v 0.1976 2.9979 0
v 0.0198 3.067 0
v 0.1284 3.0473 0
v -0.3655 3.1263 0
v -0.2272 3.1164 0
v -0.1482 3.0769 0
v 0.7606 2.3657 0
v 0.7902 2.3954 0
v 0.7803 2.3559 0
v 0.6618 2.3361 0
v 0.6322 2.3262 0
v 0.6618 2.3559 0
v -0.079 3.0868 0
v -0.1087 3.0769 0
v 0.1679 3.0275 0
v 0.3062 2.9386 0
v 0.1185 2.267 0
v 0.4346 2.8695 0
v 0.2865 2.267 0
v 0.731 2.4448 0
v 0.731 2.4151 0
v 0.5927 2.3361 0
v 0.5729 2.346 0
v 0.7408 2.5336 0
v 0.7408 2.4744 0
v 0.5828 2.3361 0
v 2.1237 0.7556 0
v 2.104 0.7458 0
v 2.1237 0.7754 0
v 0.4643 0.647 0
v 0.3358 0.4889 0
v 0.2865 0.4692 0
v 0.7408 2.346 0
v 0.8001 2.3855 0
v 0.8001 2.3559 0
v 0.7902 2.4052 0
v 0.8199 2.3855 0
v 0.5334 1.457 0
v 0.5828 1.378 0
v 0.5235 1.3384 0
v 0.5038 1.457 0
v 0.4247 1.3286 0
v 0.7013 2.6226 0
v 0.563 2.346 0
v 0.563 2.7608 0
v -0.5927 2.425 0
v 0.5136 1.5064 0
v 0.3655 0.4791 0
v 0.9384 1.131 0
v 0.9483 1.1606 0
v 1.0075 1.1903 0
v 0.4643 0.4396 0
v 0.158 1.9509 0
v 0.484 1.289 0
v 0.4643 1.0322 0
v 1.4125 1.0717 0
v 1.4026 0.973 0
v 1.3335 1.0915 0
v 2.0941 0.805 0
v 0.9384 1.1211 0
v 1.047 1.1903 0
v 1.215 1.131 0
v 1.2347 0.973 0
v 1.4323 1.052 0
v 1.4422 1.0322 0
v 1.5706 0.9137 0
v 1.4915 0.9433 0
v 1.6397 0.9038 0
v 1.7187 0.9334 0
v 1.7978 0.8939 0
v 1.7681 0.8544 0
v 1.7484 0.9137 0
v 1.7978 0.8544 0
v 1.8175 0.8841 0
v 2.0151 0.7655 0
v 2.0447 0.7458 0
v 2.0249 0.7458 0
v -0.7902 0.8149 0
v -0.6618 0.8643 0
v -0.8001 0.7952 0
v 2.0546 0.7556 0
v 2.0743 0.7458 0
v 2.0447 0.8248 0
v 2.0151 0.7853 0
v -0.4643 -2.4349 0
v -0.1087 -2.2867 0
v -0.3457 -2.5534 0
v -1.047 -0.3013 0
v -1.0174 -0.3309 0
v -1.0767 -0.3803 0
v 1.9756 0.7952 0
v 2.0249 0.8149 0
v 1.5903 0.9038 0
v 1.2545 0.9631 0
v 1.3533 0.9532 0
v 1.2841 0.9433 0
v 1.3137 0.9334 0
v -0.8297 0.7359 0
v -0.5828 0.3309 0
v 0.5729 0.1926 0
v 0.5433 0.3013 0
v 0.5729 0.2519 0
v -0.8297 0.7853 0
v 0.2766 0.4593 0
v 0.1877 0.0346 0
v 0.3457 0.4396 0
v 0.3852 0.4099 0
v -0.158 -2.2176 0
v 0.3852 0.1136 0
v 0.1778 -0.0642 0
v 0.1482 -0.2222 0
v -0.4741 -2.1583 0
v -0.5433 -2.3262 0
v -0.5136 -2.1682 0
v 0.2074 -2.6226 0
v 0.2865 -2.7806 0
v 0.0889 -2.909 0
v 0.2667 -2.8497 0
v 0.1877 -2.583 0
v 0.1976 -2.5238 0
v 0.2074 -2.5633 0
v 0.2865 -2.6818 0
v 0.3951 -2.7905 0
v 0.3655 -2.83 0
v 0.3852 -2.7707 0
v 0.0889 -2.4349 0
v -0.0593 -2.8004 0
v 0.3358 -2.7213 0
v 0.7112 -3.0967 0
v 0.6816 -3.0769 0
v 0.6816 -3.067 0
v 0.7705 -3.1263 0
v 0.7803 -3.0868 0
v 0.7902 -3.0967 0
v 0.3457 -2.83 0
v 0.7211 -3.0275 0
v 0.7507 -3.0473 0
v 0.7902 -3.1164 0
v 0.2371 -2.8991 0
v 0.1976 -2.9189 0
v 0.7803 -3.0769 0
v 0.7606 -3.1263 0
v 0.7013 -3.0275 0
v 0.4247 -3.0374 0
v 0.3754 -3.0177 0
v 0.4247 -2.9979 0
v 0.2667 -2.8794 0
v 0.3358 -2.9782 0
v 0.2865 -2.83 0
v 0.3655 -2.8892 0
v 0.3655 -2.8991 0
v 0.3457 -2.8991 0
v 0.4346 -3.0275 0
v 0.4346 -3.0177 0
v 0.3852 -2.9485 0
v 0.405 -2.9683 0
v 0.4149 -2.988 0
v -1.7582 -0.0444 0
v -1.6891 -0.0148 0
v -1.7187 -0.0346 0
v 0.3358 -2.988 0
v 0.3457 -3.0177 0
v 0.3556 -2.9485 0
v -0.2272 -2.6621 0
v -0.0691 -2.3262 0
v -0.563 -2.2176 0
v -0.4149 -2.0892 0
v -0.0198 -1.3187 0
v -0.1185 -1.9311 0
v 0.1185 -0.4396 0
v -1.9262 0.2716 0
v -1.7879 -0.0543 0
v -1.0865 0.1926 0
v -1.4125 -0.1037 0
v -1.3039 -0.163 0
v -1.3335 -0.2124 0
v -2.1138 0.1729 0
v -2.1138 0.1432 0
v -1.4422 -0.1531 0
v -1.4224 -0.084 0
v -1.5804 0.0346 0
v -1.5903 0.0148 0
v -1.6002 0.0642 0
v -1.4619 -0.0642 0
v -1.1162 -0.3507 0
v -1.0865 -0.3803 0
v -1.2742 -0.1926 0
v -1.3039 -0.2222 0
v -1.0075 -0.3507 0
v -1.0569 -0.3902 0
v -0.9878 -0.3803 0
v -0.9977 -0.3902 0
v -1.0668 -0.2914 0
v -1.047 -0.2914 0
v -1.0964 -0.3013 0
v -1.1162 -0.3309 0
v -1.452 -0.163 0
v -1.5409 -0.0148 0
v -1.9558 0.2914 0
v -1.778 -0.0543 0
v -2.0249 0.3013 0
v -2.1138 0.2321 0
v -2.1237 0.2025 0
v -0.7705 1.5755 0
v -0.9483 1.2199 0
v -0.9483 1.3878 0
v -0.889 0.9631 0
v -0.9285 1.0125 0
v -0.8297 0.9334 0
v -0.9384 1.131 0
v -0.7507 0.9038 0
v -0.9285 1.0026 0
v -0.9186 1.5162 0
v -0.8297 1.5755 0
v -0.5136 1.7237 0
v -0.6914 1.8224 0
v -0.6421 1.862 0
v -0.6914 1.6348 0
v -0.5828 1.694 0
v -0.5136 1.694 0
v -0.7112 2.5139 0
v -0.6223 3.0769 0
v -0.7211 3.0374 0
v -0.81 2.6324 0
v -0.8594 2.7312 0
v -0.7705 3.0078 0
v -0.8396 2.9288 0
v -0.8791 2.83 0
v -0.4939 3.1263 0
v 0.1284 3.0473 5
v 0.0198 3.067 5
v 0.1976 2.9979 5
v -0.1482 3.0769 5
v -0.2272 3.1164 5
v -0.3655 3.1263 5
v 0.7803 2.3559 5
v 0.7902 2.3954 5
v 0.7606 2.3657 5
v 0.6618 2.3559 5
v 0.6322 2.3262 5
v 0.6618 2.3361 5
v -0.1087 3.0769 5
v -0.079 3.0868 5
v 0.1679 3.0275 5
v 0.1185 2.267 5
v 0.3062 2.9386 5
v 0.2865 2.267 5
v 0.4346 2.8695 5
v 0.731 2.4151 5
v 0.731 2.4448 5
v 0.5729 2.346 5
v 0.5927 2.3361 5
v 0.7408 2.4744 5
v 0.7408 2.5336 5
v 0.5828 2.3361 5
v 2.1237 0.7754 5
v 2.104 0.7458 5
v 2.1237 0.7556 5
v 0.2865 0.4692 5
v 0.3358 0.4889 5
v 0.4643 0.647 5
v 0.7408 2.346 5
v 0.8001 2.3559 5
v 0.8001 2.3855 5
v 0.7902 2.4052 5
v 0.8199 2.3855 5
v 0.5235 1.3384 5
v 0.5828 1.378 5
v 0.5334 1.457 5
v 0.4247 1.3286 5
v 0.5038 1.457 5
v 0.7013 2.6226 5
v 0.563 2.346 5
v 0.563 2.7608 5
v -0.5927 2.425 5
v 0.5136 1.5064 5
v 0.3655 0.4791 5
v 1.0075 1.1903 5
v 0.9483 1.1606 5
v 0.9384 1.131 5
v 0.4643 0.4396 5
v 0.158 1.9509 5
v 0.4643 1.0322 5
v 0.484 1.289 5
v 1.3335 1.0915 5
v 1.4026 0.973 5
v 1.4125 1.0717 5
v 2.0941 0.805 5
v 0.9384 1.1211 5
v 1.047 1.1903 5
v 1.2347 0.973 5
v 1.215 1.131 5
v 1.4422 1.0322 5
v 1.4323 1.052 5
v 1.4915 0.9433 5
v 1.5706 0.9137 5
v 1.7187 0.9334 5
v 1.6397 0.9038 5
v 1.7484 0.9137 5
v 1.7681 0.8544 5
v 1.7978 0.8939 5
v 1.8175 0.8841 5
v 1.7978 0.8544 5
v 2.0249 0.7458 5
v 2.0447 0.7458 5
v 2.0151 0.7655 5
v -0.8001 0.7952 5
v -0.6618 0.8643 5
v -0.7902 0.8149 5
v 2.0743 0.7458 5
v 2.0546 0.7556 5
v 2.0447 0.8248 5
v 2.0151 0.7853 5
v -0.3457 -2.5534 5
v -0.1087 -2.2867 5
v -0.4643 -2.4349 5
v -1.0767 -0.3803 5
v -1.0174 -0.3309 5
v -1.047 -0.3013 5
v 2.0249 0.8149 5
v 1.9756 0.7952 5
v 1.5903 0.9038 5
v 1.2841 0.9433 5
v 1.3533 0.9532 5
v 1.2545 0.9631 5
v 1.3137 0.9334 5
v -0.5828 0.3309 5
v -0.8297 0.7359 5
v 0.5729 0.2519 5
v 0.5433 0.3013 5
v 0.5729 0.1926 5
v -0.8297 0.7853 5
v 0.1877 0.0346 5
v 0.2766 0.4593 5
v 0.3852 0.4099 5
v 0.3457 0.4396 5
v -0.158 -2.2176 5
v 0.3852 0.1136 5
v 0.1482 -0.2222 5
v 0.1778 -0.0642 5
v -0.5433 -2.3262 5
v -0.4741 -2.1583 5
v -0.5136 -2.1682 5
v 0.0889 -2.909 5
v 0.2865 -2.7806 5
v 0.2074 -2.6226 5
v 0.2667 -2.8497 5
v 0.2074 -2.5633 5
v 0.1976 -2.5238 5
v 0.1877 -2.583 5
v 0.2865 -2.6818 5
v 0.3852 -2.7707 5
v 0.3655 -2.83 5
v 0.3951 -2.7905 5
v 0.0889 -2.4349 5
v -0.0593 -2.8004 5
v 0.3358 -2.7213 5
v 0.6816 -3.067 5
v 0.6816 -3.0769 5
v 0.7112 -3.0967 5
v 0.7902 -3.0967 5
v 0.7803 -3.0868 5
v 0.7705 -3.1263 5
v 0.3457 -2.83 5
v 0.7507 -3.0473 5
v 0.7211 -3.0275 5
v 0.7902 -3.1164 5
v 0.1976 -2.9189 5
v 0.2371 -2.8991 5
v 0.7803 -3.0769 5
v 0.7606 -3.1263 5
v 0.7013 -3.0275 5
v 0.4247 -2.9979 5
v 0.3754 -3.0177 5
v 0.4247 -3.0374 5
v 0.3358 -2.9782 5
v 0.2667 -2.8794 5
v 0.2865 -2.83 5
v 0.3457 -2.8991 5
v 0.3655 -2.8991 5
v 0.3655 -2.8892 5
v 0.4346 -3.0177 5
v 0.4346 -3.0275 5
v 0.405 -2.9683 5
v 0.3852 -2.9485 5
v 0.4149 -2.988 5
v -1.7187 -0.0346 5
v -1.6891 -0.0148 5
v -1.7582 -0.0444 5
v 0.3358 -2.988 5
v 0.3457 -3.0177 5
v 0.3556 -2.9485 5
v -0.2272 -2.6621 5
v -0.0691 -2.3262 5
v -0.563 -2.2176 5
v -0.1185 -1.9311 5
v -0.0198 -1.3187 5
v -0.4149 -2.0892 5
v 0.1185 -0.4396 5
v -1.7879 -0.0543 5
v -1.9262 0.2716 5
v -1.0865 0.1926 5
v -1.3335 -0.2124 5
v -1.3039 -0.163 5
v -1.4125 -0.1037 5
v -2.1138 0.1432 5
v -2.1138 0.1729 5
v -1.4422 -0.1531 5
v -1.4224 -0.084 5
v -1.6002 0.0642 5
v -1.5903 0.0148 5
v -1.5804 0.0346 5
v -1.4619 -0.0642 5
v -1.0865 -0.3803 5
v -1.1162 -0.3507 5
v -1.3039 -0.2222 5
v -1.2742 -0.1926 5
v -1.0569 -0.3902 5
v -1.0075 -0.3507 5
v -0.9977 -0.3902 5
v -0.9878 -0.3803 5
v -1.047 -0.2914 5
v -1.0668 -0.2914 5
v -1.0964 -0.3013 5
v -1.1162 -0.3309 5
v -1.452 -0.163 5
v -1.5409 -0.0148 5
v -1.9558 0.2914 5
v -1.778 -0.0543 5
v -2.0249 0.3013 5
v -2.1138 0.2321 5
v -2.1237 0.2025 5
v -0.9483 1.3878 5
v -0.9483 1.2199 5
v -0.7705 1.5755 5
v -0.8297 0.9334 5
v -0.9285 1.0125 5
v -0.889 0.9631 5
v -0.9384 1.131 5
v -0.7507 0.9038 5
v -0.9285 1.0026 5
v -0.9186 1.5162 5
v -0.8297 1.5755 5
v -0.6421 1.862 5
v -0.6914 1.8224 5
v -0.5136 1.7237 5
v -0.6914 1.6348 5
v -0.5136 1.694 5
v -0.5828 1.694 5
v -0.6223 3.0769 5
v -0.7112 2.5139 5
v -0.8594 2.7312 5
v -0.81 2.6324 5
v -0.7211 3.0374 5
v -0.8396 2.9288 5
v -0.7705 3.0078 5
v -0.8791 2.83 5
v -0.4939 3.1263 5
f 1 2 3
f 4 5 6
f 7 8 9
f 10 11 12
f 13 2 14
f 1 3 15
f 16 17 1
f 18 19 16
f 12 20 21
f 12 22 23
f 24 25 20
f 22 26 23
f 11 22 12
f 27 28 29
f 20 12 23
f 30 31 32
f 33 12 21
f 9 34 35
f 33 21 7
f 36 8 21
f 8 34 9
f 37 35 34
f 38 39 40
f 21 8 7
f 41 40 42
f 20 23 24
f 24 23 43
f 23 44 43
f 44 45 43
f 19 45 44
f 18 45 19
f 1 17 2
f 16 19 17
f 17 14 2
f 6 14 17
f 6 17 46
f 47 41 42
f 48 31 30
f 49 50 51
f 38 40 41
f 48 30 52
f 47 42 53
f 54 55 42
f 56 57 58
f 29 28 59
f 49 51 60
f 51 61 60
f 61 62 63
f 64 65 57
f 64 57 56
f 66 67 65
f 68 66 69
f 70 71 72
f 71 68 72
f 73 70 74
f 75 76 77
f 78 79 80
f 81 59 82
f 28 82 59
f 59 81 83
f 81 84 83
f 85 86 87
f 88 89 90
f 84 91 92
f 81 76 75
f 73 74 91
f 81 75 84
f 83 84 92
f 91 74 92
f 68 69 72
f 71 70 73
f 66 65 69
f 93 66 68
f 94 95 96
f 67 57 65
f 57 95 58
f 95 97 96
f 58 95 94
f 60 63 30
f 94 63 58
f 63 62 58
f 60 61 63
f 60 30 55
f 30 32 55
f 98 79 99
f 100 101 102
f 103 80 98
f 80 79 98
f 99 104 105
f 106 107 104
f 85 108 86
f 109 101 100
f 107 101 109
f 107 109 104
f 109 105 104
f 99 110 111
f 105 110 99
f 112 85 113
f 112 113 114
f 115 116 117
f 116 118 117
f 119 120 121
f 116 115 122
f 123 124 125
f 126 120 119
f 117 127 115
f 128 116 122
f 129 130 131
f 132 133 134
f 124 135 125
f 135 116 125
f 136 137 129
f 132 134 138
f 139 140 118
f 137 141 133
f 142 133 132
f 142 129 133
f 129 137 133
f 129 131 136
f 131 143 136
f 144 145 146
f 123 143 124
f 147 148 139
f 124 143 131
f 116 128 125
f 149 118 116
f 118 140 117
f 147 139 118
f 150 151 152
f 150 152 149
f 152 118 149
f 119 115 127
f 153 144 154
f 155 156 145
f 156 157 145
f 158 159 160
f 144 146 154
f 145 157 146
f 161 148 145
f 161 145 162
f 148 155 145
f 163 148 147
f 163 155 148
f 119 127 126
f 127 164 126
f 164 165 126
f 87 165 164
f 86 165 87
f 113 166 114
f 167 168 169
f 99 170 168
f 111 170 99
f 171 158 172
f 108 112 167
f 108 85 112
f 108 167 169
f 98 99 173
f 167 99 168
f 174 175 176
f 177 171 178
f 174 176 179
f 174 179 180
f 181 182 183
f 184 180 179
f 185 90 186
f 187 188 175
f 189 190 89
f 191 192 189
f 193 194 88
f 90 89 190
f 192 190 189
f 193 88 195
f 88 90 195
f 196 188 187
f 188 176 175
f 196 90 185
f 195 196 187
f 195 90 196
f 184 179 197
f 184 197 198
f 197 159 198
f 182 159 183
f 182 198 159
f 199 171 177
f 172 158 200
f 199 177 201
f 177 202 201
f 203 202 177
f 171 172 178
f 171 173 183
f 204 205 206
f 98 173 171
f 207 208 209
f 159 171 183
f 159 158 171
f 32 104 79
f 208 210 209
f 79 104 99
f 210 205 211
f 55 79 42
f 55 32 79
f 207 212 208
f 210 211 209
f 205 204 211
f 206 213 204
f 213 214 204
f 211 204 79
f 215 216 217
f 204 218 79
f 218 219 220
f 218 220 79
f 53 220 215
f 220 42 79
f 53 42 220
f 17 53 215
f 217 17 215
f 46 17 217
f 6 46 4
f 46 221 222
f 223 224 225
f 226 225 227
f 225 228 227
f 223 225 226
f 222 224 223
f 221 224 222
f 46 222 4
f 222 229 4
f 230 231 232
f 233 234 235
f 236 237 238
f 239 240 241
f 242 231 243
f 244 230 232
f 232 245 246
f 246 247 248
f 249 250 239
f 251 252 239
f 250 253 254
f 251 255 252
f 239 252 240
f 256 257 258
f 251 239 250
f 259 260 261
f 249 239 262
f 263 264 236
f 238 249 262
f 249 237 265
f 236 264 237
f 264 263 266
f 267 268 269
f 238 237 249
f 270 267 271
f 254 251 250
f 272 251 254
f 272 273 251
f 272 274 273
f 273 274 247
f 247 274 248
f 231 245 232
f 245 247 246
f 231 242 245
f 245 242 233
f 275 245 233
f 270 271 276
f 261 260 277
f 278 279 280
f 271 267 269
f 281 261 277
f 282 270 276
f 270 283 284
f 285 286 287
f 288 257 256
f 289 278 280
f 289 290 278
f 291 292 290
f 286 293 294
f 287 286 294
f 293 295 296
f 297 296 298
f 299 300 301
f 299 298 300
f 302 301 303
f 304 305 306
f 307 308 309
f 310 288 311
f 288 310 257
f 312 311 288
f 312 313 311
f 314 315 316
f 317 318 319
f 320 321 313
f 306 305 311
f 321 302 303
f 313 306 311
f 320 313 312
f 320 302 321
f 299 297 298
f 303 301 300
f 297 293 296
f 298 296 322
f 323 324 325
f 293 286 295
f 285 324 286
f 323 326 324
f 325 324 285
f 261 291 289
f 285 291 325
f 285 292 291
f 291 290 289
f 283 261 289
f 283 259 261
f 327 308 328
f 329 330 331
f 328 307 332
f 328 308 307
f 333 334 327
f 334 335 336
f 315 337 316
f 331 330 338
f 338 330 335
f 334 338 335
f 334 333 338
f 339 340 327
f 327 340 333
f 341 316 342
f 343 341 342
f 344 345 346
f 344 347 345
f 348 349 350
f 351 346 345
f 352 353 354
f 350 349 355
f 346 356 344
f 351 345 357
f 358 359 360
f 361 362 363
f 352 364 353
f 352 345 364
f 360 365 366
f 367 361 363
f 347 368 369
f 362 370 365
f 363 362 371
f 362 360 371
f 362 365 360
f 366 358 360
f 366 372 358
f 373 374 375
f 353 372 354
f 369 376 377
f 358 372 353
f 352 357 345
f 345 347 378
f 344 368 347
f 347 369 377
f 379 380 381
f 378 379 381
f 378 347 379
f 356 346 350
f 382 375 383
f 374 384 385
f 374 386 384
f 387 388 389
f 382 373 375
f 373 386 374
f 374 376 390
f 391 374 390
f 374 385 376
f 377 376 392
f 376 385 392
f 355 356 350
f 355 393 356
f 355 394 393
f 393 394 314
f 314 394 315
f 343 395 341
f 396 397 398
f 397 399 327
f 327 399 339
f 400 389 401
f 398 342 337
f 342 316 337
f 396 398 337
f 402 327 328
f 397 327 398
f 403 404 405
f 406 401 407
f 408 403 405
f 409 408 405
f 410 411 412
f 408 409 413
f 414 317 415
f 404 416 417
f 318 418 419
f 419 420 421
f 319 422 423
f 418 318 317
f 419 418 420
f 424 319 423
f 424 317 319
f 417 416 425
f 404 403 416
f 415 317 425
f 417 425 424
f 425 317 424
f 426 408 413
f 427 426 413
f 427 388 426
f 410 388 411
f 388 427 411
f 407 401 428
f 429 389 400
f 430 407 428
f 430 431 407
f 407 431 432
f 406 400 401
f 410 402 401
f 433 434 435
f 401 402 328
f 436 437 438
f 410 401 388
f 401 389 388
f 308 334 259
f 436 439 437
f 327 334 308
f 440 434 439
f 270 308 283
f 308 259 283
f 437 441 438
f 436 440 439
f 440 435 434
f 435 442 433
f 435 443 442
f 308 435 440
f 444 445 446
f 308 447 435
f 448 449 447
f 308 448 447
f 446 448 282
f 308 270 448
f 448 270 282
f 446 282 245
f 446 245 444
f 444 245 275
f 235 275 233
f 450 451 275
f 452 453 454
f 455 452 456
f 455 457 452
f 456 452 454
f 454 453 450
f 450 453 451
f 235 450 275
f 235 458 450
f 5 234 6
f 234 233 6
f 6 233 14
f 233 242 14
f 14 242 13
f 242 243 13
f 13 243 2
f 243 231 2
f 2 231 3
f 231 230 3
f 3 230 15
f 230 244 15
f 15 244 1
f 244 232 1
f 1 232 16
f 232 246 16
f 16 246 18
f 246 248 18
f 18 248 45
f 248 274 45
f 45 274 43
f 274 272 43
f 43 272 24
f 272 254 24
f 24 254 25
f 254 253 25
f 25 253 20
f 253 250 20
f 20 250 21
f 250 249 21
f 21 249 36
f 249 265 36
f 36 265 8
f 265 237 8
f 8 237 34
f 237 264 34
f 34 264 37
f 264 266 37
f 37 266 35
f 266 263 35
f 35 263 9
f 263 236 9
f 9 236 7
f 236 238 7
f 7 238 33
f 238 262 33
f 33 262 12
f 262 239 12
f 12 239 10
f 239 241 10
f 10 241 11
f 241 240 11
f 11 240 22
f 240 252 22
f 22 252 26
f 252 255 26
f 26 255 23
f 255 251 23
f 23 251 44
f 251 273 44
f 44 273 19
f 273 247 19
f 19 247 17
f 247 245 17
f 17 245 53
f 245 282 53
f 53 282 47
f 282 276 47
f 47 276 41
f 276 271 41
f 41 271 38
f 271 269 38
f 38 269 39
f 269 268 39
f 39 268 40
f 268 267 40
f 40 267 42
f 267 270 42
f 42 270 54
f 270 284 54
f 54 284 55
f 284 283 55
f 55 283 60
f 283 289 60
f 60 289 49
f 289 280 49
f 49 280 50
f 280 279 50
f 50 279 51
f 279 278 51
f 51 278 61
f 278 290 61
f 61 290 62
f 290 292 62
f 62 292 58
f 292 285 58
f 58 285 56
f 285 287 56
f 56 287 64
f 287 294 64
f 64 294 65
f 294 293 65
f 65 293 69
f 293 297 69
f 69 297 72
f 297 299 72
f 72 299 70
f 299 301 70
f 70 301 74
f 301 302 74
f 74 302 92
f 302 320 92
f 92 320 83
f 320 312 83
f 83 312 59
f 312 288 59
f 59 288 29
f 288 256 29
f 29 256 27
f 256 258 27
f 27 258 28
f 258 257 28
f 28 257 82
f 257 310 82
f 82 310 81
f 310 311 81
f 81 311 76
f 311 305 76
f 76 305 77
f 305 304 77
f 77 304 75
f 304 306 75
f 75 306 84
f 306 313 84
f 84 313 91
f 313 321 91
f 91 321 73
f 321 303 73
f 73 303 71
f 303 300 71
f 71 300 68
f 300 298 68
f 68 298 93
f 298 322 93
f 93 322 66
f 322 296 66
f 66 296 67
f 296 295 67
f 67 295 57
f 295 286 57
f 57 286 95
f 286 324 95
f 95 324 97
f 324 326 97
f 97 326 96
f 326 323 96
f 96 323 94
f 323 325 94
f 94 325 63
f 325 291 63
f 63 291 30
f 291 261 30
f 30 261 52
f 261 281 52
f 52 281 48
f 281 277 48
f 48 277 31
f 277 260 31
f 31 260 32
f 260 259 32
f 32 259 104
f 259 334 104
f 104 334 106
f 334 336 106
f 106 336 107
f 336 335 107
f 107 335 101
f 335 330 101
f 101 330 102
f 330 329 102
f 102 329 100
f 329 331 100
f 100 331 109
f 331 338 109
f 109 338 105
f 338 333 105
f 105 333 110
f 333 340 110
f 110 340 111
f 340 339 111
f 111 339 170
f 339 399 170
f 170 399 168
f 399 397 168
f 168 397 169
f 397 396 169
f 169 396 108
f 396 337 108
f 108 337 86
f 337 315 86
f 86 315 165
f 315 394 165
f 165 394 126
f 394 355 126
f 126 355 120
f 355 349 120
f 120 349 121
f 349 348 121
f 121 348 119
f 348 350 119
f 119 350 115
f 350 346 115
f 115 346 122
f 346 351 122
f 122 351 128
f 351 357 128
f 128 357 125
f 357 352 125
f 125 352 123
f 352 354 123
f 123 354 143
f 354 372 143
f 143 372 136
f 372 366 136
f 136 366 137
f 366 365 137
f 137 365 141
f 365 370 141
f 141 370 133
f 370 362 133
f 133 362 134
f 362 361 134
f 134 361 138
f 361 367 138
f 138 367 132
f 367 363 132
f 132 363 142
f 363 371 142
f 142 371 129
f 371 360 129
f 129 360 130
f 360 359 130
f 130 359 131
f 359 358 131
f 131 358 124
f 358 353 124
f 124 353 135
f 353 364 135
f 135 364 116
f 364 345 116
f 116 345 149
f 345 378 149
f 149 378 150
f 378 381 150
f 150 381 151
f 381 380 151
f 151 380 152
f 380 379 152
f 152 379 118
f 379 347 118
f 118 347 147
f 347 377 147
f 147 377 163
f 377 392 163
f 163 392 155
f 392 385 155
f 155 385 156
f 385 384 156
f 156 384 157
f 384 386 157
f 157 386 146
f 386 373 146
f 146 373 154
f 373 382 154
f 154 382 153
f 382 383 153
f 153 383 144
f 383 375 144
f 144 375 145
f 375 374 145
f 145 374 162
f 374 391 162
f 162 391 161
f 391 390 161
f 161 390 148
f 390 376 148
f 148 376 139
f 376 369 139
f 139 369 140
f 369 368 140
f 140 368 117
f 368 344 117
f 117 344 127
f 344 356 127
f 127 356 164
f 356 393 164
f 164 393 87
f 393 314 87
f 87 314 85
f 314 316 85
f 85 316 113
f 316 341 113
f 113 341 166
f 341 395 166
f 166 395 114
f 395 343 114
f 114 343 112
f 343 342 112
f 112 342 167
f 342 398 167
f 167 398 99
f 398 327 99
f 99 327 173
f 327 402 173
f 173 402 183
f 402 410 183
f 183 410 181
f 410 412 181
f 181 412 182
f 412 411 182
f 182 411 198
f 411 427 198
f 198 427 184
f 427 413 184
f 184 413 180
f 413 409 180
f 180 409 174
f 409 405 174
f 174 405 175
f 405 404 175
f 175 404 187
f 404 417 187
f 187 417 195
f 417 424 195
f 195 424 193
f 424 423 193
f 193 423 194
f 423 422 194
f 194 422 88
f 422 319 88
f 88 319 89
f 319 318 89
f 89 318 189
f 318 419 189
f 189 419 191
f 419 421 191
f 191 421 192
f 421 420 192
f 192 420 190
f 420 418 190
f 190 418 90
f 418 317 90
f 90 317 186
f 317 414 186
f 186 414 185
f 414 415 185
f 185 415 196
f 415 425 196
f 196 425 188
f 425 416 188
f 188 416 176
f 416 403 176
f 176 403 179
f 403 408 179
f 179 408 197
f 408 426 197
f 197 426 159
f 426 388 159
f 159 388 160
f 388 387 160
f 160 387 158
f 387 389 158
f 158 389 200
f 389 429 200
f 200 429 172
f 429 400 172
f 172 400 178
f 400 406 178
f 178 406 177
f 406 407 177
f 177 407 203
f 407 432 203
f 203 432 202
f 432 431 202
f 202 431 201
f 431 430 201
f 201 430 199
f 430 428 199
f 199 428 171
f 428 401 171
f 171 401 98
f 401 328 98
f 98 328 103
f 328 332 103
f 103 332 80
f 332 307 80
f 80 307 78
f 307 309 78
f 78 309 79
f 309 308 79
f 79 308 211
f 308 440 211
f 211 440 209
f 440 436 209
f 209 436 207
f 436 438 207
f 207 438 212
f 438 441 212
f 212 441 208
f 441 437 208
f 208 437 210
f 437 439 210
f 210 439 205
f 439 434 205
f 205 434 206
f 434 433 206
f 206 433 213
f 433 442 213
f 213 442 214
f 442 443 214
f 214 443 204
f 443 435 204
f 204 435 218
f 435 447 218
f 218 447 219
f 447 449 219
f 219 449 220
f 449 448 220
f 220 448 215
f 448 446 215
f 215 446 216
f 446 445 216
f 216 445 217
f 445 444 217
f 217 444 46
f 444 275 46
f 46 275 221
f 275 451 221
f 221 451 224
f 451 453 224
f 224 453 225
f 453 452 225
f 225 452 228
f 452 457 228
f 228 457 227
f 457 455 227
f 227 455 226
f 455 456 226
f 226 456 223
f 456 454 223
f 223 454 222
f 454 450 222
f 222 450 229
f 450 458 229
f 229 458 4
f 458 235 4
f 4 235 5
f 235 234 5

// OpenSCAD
// Module names are of the form poly_<inkscape-path-id>().  As a result,
// you can associate a polygon in this OpenSCAD program with the corresponding
// SVG element in the Inkscape document by looking for the XML element with
// the attribute id="inkscape-path-id".

// fudge value is used to ensure that subtracted solids are a tad taller
// in the z dimension than the polygon being subtracted from.  This helps
// keep the resulting .stl file manifold.
fudge = 0.1;

module poly_path4159(h)
{
  scale([25.4/90, -25.4/90, 1]) union()
  {
    linear_extrude(height=h)
      polygon([[-1.750000,-11.077500],[-1.295000,-11.077500],[-0.805000,-11.042500],[-0.665000,-10.972500],[-0.525000,-10.902500],[-0.385000,-10.902500],[-0.280000,-10.937500],[0.070000,-10.867500],[0.455000,-10.797500],[0.595000,-10.727500],[0.700000,-10.622500],[1.085000,-10.412500],[1.540000,-10.167500],[1.995000,-9.782500],[2.485000,-9.292500],[2.625000,-8.977500],[2.625000,-8.767500],[2.590000,-8.662500],[2.590000,-8.627500],[2.590000,-8.557500],[2.800000,-8.522500],[2.800000,-8.487500],[2.835000,-8.452500],[2.905000,-8.452500],[2.835000,-8.347500],[2.765000,-8.347500],[2.695000,-8.382500],[2.660000,-8.347500],[2.625000,-8.312500],[2.345000,-8.347500],[2.345000,-8.277500],[2.240000,-8.242500],[2.100000,-8.277500],[2.065000,-8.277500],[2.030000,-8.312500],[1.995000,-8.312500],[1.015000,-8.032500],[0.420000,-8.032500],[0.560000,-6.912500],[1.820000,-5.337500],[1.785000,-5.162500],[1.890000,-5.162500],[2.065000,-4.882500],[1.855000,-4.742500],[1.505000,-4.707500],[1.715000,-4.567500],[1.645000,-3.657500],[3.325000,-3.972500],[3.325000,-4.007500],[3.360000,-4.112500],[3.570000,-4.217500],[3.710000,-4.217500],[4.305000,-4.007500],[4.725000,-3.867500],[5.005000,-3.797500],[5.075000,-3.727500],[5.110000,-3.657500],[6.090000,-3.307500],[6.195000,-3.237500],[6.370000,-3.167500],[6.440000,-3.132500],[7.175000,-2.887500],[7.245000,-2.922500],[7.420000,-2.852500],[7.455000,-2.817500],[7.525000,-2.747500],[7.525000,-2.677500],[7.455000,-2.642500],[7.350000,-2.642500],[7.280000,-2.677500],[7.245000,-2.642500],[7.175000,-2.642500],[7.140000,-2.712500],[7.140000,-2.782500],[7.000000,-2.817500],[6.685000,-2.922500],[6.475000,-2.992500],[6.370000,-3.027500],[6.265000,-3.027500],[5.810000,-3.202500],[5.635000,-3.202500],[5.565000,-3.237500],[5.285000,-3.342500],[4.970000,-3.447500],[4.795000,-3.377500],[4.655000,-3.307500],[4.550000,-3.342500],[4.445000,-3.412500],[4.375000,-3.447500],[1.645000,-2.292500],[1.645000,-1.557500],[1.470000,-1.627500],[1.295000,-1.697500],[1.190000,-1.732500],[1.015000,-1.662500],[0.980000,-1.627500],[1.225000,-1.557500],[1.365000,-1.452500],[1.925000,-1.067500],[2.030000,-0.892500],[2.030000,-0.682500],[1.365000,-0.402500],[0.665000,-0.122500],[0.630000,0.227500],[0.525000,0.787500],[0.420000,1.557500],[-0.070000,4.672500],[-0.420000,6.842500],[-0.560000,7.857500],[-0.385000,8.102500],[-0.245000,8.242500],[0.315000,8.627500],[0.700000,8.942500],[0.735000,9.082500],[0.665000,9.152500],[0.735000,9.292500],[1.015000,9.502500],[1.190000,9.642500],[1.295000,9.747500],[1.365000,9.817500],[1.400000,9.887500],[2.485000,10.727500],[2.555000,10.727500],[2.660000,10.797500],[2.765000,10.902500],[2.765000,10.937500],[2.800000,10.972500],[2.800000,11.042500],[2.730000,11.077500],[2.695000,11.077500],[2.520000,10.972500],[2.415000,10.902500],[2.415000,10.867500],[1.295000,10.027500],[1.225000,10.027500],[1.015000,9.852500],[1.015000,10.027500],[1.295000,10.237500],[1.295000,10.272500],[1.225000,10.272500],[0.945000,10.097500],[0.945000,10.202500],[1.260000,10.447500],[1.365000,10.447500],[1.435000,10.517500],[1.470000,10.587500],[1.505000,10.622500],[1.540000,10.692500],[1.540000,10.727500],[1.505000,10.762500],[1.330000,10.692500],[1.295000,10.692500],[1.225000,10.692500],[1.190000,10.587500],[1.190000,10.552500],[0.840000,10.272500],[0.700000,10.342500],[0.315000,10.307500],[-0.210000,9.922500],[-0.805000,9.432500],[-1.225000,9.047500],[-1.645000,8.627500],[-1.925000,8.242500],[-1.995000,7.857500],[-1.820000,7.682500],[-1.680000,7.647500],[-1.470000,7.402500],[-2.065000,-1.172500],[-3.850000,-0.682500],[-5.110000,-0.367500],[-5.670000,-0.227500],[-5.600000,-0.122500],[-5.635000,-0.052500],[-5.460000,0.052500],[-5.180000,0.227500],[-5.110000,0.262500],[-5.040000,0.297500],[-5.005000,0.367500],[-4.620000,0.577500],[-4.515000,0.682500],[-3.885000,1.067500],[-3.780000,1.032500],[-3.710000,1.032500],[-3.710000,1.067500],[-3.640000,1.137500],[-3.605000,1.172500],[-3.570000,1.242500],[-3.500000,1.347500],[-3.535000,1.382500],[-3.640000,1.382500],[-3.710000,1.382500],[-3.745000,1.382500],[-3.815000,1.347500],[-3.850000,1.347500],[-3.955000,1.242500],[-3.955000,1.172500],[-4.620000,0.787500],[-4.725000,0.752500],[-5.110000,0.542500],[-5.145000,0.577500],[-5.985000,0.052500],[-6.090000,0.122500],[-6.230000,0.157500],[-6.300000,0.192500],[-6.335000,0.192500],[-7.490000,-0.507500],[-7.490000,-0.612500],[-7.525000,-0.717500],[-7.490000,-0.822500],[-7.175000,-1.067500],[-6.930000,-1.032500],[-6.825000,-0.962500],[-2.940000,-2.607500],[-2.940000,-2.782500],[-2.835000,-2.817500],[-2.800000,-2.887500],[-2.345000,-3.062500],[-2.660000,-3.202500],[-2.940000,-3.307500],[-3.150000,-3.412500],[-3.290000,-3.552500],[-3.290000,-3.587500],[-3.325000,-4.007500],[-3.360000,-4.322500],[-3.360000,-4.567500],[-3.360000,-4.917500],[-3.255000,-5.372500],[-2.940000,-5.582500],[-2.730000,-5.582500],[-2.450000,-5.792500],[-2.065000,-6.002500],[-1.820000,-6.002500],[-1.820000,-6.107500],[-2.450000,-6.457500],[-2.275000,-6.597500],[-2.100000,-8.592500],[-2.520000,-8.907500],[-2.870000,-9.327500],[-3.045000,-9.677500],[-3.115000,-10.027500],[-2.975000,-10.377500],[-2.730000,-10.657500],[-2.555000,-10.762500],[-2.205000,-10.902500],[-1.750000,-11.077500]]);
  }
}

poly_path4159(5);
